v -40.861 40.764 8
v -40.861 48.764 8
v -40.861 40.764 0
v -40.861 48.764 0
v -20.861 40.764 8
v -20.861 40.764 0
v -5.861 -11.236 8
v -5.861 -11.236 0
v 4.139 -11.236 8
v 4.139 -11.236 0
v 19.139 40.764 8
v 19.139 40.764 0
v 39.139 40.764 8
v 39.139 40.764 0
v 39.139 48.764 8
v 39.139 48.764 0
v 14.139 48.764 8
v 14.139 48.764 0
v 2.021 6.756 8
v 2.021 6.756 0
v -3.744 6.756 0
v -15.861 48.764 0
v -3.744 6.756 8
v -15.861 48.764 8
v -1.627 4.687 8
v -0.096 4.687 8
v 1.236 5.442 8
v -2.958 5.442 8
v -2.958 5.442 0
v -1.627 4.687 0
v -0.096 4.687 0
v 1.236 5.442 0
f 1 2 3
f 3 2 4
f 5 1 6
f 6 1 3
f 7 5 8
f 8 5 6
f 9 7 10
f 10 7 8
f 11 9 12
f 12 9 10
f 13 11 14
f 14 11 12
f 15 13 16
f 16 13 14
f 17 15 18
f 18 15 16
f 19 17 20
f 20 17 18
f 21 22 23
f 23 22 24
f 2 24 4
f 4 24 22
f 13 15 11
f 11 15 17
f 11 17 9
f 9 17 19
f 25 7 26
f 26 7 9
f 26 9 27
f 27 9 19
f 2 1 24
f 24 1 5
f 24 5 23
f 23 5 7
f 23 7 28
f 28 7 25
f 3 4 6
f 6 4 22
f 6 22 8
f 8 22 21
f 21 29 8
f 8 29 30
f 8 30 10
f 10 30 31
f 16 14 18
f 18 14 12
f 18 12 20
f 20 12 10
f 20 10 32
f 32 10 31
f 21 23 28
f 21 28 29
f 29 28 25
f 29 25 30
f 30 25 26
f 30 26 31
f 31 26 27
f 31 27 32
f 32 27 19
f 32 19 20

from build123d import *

# Parameters (mm, degrees)
BOSS_EXTRU_1_DEPTH = 8
CONG_1_R           = 3


with BuildPart() as part:
    # Esquisse1 → Boss.-Extru.1 (new body)
    with BuildSketch(Plane.XY):
        Polygon((-40.861442373, 48.763533187), (-15.861442373, 48.763533187), (-0.861442373, -3.236466813), (14.138557627, 48.763533187), (39.138557627, 48.763533187), (39.138557627, 40.763533187), (19.138557627, 40.763533187), (4.138557627, -11.236466813), (-5.861442373, -11.236466813), (-20.861442373, 40.763533187), (-40.861442373, 40.763533187), align=None)
    extrude(amount=BOSS_EXTRU_1_DEPTH)

    # Congé1
    cong_1_edges = [part.edges().sort_by_distance(p)[0] for p in [
        (-0.861442373, -3.236466813, 4),
    ]]
    fillet(cong_1_edges, radius=CONG_1_R)


solid = part.part
